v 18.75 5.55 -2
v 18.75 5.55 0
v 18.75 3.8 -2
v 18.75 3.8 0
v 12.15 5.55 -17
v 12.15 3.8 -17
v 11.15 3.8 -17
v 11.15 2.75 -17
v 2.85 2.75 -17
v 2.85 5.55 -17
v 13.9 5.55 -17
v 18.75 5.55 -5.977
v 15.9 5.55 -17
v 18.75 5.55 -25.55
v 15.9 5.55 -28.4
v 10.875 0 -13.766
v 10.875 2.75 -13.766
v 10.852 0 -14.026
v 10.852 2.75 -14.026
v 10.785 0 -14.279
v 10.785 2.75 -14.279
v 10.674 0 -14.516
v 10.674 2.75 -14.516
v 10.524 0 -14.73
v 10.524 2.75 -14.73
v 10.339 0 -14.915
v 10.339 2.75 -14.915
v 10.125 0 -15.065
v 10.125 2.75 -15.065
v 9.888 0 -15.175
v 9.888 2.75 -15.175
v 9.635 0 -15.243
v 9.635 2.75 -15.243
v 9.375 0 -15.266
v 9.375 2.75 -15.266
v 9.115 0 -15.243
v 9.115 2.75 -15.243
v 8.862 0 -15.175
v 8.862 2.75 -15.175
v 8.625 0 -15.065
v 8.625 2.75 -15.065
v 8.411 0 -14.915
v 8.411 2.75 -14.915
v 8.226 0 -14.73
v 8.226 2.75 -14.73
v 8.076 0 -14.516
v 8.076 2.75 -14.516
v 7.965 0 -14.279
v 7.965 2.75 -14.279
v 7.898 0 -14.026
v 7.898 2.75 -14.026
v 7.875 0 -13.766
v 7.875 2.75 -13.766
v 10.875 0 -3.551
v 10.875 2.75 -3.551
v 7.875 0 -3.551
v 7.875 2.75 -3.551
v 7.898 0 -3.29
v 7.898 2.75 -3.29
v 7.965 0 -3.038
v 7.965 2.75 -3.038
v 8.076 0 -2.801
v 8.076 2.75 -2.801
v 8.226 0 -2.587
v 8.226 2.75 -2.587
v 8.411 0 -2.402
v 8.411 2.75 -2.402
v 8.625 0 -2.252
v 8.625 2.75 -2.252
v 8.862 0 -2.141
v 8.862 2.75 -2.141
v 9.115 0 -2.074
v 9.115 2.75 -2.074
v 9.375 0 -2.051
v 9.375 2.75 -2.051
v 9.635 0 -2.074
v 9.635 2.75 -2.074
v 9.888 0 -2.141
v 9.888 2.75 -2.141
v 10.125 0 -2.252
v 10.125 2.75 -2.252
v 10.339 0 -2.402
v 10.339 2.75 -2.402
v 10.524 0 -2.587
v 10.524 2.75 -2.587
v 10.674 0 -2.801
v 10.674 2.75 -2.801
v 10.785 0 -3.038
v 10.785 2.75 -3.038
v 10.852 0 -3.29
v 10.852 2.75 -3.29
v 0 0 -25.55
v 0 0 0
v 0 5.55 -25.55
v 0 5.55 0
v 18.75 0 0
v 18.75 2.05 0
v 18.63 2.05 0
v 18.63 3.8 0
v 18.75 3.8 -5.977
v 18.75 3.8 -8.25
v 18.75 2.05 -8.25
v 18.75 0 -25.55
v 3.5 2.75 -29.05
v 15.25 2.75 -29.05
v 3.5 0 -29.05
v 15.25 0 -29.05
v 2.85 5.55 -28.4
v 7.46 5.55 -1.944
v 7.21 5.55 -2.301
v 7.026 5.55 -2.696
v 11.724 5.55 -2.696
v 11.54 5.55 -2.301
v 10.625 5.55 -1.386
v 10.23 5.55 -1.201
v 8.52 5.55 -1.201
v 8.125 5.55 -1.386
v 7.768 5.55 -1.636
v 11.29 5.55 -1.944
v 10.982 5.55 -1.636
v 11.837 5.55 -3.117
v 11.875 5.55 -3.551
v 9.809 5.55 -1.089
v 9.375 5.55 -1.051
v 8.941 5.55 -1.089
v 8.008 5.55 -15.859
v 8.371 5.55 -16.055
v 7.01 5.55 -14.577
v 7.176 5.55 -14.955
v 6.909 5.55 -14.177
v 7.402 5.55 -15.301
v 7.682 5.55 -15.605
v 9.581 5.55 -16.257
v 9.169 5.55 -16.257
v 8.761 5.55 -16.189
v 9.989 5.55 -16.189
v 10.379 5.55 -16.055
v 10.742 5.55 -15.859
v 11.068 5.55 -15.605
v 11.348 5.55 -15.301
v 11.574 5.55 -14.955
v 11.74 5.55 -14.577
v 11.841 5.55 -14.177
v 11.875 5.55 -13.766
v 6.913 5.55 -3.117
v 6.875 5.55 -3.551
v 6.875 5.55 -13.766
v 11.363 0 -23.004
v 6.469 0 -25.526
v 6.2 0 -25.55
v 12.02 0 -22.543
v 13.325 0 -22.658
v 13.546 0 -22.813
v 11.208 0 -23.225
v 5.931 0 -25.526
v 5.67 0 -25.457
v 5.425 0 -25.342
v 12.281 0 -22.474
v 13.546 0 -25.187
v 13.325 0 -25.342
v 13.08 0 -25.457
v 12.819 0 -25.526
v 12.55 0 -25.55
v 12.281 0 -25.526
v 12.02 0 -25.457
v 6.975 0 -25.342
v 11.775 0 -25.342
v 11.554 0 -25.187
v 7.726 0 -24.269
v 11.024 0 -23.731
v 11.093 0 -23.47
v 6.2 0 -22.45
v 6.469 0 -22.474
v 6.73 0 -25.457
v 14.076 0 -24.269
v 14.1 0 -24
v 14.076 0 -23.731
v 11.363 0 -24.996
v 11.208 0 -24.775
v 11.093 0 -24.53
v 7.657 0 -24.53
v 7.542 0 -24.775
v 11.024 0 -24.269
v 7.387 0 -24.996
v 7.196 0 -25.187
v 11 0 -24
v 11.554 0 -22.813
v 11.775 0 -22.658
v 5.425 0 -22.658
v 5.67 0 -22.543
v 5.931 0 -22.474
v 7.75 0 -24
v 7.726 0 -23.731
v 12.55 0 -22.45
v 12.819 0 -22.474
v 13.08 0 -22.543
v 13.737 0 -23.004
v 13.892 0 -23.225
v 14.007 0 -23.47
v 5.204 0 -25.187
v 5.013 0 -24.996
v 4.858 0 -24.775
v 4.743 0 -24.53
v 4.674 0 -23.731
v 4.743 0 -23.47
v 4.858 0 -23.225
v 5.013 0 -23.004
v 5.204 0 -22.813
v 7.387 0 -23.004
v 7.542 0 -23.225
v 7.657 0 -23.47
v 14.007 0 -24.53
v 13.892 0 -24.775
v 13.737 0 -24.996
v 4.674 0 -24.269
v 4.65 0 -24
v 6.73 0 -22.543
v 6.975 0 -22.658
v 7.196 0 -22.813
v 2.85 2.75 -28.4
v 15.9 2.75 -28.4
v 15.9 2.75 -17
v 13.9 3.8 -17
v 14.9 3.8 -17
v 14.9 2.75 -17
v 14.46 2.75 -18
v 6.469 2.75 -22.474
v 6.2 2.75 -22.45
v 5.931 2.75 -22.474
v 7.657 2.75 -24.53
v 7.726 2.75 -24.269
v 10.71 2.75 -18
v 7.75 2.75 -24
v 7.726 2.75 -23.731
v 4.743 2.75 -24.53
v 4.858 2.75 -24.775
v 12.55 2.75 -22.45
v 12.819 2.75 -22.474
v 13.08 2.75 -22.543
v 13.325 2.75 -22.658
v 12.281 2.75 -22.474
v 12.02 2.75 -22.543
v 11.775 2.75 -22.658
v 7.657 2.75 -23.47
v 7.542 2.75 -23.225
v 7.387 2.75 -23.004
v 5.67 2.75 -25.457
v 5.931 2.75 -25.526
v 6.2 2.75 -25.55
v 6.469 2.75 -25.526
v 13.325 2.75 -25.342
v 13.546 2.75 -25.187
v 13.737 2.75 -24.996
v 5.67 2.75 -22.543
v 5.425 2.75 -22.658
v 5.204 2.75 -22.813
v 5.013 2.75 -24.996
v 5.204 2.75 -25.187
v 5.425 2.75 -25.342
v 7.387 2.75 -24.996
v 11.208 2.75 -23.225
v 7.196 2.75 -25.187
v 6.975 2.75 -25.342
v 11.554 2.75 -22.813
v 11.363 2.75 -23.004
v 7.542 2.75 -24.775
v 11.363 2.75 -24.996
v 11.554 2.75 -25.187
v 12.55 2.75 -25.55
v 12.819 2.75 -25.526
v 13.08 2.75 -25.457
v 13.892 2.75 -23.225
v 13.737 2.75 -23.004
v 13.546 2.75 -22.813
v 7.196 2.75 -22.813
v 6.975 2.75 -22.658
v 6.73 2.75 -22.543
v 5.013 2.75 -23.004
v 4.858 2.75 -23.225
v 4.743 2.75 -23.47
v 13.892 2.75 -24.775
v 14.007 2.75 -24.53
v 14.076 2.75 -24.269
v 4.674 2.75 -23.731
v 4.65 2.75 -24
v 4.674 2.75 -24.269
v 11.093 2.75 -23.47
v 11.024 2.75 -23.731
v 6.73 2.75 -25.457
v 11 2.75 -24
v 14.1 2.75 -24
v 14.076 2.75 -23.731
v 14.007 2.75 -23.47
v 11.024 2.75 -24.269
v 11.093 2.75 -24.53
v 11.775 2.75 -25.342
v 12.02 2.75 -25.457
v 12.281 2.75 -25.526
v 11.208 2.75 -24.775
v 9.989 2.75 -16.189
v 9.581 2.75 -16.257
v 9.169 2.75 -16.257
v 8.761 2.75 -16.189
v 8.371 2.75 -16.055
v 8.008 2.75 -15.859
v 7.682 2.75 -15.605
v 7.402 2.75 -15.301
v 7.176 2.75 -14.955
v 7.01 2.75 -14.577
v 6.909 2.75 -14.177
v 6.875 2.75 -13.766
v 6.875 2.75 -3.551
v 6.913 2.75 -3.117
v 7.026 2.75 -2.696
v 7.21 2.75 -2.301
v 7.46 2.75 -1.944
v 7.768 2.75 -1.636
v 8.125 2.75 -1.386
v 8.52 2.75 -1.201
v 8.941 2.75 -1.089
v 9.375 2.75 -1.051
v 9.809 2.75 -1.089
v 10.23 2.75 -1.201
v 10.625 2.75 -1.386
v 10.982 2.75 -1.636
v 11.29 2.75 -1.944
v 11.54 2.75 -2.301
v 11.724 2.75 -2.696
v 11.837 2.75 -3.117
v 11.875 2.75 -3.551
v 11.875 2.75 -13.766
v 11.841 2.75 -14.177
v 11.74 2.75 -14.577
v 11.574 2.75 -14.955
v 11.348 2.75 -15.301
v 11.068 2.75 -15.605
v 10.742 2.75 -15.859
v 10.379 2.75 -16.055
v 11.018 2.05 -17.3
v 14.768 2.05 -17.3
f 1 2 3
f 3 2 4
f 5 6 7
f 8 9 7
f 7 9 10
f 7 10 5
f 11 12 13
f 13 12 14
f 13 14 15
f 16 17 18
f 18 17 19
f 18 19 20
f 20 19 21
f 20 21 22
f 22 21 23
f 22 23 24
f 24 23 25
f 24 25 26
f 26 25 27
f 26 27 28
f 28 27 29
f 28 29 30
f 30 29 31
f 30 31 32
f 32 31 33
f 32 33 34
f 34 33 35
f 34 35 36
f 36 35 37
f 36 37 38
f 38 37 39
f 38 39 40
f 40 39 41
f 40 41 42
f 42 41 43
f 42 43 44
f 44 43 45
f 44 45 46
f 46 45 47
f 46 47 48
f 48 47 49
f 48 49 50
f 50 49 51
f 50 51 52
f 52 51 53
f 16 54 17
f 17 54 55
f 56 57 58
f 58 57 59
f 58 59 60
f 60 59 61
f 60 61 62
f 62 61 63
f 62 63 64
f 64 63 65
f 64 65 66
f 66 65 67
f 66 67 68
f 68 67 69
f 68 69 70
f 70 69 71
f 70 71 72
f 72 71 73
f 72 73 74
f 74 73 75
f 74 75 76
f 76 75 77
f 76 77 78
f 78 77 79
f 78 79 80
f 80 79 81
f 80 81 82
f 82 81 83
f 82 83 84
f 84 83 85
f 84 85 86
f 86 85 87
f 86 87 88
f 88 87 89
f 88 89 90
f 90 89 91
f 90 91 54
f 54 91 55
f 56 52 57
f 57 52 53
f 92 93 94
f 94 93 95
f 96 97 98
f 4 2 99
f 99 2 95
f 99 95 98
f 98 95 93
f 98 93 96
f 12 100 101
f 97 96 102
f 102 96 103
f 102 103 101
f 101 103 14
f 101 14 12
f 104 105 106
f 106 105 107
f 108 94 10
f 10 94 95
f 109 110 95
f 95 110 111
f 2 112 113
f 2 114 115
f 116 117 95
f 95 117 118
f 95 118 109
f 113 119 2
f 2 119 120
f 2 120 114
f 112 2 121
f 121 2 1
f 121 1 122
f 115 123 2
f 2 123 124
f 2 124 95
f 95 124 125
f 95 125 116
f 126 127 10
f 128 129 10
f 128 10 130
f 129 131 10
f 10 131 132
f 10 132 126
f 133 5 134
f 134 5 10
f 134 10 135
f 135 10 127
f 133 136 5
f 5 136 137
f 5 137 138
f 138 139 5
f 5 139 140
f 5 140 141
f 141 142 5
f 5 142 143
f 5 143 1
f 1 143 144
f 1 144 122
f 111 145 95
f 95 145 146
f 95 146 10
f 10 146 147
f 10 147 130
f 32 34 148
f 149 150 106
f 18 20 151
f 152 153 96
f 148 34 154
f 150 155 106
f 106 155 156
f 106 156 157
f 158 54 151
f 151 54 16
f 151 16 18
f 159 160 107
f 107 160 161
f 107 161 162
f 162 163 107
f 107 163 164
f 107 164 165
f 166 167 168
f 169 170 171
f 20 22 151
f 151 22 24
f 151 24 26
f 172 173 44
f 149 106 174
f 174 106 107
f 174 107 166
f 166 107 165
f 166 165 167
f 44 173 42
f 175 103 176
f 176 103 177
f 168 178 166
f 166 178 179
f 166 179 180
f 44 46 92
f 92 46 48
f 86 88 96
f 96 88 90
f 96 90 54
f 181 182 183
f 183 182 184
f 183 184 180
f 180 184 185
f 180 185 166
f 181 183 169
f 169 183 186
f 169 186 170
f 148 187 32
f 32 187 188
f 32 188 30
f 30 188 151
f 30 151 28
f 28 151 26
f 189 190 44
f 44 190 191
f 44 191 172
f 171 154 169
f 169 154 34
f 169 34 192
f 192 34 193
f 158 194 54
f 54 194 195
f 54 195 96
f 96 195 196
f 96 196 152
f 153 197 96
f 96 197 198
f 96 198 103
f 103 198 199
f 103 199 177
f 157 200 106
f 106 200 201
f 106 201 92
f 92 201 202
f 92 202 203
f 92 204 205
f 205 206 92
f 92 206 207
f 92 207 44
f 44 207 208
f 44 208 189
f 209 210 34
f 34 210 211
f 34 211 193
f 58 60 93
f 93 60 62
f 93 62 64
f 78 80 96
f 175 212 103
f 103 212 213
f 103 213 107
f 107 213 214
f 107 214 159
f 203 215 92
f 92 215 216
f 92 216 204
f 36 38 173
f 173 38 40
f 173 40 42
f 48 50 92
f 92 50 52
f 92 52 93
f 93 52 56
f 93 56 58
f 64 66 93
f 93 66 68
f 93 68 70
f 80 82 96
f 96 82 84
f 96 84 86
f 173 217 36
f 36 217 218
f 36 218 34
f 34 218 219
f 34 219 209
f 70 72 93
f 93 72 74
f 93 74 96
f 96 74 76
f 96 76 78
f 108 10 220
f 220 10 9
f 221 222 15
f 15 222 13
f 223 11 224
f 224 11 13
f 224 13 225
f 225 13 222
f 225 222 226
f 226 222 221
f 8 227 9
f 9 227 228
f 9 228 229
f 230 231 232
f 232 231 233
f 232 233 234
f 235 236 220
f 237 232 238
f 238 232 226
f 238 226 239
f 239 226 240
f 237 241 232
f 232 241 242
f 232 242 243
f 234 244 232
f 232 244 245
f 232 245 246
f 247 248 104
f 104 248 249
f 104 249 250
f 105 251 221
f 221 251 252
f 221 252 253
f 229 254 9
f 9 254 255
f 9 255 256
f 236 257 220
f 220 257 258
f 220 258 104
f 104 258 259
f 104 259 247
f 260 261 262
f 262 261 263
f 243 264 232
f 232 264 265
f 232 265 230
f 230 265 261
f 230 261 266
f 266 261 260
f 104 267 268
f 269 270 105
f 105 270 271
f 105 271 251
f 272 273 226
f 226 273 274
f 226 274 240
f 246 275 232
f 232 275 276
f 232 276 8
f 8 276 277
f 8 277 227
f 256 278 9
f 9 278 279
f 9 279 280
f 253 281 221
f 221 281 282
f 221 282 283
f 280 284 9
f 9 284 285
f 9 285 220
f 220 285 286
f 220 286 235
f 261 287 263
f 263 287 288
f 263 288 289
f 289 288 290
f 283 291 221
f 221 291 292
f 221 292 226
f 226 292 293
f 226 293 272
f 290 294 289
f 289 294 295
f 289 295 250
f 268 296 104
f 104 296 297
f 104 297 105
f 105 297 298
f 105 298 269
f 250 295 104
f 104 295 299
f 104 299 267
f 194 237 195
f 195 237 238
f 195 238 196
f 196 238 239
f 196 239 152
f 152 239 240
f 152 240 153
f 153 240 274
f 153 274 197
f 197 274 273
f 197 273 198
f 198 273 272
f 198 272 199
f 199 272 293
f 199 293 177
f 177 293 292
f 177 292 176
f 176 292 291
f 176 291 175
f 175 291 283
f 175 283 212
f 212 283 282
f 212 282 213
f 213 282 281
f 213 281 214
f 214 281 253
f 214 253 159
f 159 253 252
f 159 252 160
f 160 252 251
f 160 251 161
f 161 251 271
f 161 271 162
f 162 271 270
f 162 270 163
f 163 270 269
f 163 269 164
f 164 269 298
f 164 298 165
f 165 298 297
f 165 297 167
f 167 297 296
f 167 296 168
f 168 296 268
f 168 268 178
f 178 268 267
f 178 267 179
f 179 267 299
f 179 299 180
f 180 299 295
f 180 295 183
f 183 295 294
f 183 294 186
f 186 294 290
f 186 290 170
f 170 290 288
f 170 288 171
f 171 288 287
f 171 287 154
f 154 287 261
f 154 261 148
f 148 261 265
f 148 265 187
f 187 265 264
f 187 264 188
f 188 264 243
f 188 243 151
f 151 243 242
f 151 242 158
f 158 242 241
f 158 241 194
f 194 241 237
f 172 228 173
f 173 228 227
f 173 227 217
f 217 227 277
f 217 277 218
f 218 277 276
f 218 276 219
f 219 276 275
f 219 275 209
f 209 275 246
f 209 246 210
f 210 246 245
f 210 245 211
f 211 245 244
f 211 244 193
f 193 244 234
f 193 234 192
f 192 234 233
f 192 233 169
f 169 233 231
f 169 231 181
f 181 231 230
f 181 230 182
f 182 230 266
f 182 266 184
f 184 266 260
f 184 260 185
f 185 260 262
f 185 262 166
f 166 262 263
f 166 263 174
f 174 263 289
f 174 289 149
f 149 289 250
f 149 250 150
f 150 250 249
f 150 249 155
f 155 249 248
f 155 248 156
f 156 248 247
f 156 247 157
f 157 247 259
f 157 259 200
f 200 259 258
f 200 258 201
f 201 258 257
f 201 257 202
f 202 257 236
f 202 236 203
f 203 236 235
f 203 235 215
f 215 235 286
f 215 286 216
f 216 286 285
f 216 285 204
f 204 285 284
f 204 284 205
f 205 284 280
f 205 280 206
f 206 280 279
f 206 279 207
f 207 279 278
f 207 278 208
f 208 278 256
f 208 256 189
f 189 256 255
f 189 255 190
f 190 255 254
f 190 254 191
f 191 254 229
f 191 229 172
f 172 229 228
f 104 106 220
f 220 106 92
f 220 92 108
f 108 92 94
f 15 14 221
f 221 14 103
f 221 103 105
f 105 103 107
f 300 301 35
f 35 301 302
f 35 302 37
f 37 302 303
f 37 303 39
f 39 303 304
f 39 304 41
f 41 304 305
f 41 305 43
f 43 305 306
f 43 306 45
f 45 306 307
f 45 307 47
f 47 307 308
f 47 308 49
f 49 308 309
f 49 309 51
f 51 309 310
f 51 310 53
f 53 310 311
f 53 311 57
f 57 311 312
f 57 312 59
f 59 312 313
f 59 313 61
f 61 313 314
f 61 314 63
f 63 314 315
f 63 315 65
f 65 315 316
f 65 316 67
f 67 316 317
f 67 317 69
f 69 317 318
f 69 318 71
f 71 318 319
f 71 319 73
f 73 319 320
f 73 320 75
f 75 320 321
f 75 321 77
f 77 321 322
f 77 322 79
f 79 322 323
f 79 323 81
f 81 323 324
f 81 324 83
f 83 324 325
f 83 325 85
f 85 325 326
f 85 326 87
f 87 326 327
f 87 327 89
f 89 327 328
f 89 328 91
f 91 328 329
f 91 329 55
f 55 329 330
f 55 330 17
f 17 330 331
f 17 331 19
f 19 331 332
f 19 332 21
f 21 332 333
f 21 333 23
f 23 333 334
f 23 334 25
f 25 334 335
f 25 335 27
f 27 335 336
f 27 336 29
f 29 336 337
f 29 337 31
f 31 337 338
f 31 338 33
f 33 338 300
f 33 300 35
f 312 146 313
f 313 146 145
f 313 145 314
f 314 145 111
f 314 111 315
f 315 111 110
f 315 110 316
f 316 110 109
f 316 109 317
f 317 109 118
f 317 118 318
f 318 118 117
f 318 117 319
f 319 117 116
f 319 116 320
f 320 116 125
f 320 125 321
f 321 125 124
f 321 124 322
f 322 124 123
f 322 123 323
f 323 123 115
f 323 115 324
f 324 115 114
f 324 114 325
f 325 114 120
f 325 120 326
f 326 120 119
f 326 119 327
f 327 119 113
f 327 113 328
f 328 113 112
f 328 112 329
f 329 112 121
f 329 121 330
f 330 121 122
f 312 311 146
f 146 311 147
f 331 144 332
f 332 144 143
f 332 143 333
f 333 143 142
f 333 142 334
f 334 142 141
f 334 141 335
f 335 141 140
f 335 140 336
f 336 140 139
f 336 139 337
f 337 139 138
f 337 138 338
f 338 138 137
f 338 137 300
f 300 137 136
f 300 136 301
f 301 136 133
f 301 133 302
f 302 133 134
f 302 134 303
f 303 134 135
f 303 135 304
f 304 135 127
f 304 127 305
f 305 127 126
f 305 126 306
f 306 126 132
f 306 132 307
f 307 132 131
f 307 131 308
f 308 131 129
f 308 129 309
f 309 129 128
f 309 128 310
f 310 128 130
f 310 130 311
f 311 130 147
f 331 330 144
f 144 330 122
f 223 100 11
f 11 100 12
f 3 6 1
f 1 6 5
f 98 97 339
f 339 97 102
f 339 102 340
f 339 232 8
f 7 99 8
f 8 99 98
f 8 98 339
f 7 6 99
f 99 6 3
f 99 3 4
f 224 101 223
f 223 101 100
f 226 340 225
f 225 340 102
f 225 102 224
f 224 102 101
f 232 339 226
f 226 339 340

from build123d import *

# Parameters (mm, degrees)
SKETCH1_W                                  = 18.75
SKETCH1_H                                  = 29.05
BOSS_EXTRUDE1_DEPTH                        = 5.55
MICROSWITCHCUTSKETCH2_W                    = 13.05
MICROSWITCHCUTSKETCH2_H                    = 12.05
MICROSWITCHCUT_EXTRUDE1_DEPTH              = 2.8
MICROSWITCHMOUNTINGHOLESSKETCH3_R          = 1.55
MICROSWITCHMOUNTINGHOLESCUT_EXTRUDE2_DEPTH = 3.1
SLIDINGMOUNTHOLECUT_EXTRUDE3_DEPTH         = 36.018102461
CHAMFER1_SIZE                              = 3.5
SLIDINGMOUNTHOLEBORECUT_EXTRUDE4_DEPTH     = 2.8
THINCABLECUT_EXTRUDE5_DEPTH                = 1.75
THICKCABLECUT_EXTRUDE6_DEPTH               = 1.75
CHAMFER2_SIZE                              = 1


with BuildPart() as part:
    # Sketch1 → Boss-Extrude1 (new body)
    with BuildSketch(Plane(origin=(0, 0, 0), x_dir=(1, 0, 0), z_dir=(0, 1, 0))):
        with Locations((9.375, 14.525)):
            Rectangle(SKETCH1_W, SKETCH1_H)
    extrude(amount=BOSS_EXTRUDE1_DEPTH)

    # MicroSwitchCutSketch2 → MicroSwitchCut-Extrude1 (cut)
    with BuildSketch(Plane(origin=(0, 5.55, 0), x_dir=(1, 0, 0), z_dir=(0, 1, 0))):
        with Locations((9.375, 23.025)):
            Rectangle(MICROSWITCHCUTSKETCH2_W, MICROSWITCHCUTSKETCH2_H)
    extrude(amount=-MICROSWITCHCUT_EXTRUDE1_DEPTH, mode=Mode.SUBTRACT)

    # MicroSwitchMountingHolesSketch3 → MicroSwitchMountingHolesCut-Extrude2 (cut)
    with BuildSketch(Plane(origin=(0, 2.75, 0), x_dir=(1, 0, 0), z_dir=(0, 1, 0))):
        with Locations(Location((6.2, 24, 0), (0, 0, 270))):
            Circle(MICROSWITCHMOUNTINGHOLESSKETCH3_R)
        with Locations(Location((12.55, 24, 0), (0, 0, 270))):
            Circle(MICROSWITCHMOUNTINGHOLESSKETCH3_R)
    extrude(amount=-MICROSWITCHMOUNTINGHOLESCUT_EXTRUDE2_DEPTH, mode=Mode.SUBTRACT)

    # GantryMountSlotSketch4 → SlidingMountHoleCut-Extrude3 (cut, through all)
    with BuildSketch(Plane(origin=(0, 5.55, 0), x_dir=(1, 0, 0), z_dir=(0, 1, 0))):
        with BuildLine():
            Line((10.875, 13.765586377), (10.875, 3.550728623))
            ThreePointArc((10.875, 3.550728623), (9.375, 2.050728623), (7.875, 3.550728623))
            Line((7.875, 3.550728623), (7.875, 13.765586377))
            ThreePointArc((7.875, 13.765586377), (9.375, 15.265586377), (10.875, 13.765586377))
        make_face()
    extrude(amount=-SLIDINGMOUNTHOLECUT_EXTRUDE3_DEPTH, mode=Mode.SUBTRACT)

    # Chamfer1
    chamfer1_edges = [part.edges().sort_by_distance(p)[0] for p in [
        (18.75, 2.775, -29.05),
        (0, 2.775, -29.05),
    ]]
    chamfer(chamfer1_edges, length=CHAMFER1_SIZE)

    # Sketch2 → SlidingMountHoleBoreCut-Extrude4 (cut)
    with BuildSketch(Plane(origin=(0, 5.55, 0), x_dir=(1, 0, 0), z_dir=(0, 1, 0))):
        with BuildLine():
            Line((6.875, 3.550728623), (6.875, 13.765586377))
            ThreePointArc((6.875, 13.765586377), (9.375, 16.265586377), (11.875, 13.765586377))
            Line((11.875, 13.765586377), (11.875, 3.550728623))
            ThreePointArc((11.875, 3.550728623), (9.375, 1.050728623), (6.875, 3.550728623))
        make_face()
    extrude(amount=-SLIDINGMOUNTHOLEBORECUT_EXTRUDE4_DEPTH, mode=Mode.SUBTRACT)

    # Sketch3 → ThinCableCut-Extrude5 (cut)
    with BuildSketch(Plane(origin=(0, 5.55, 0), x_dir=(1, 0, 0), z_dir=(0, 1, 0))):
        Polygon((12.15, 17), (18.75, 2), (18.75, 5.977272727), (13.9, 17), align=None)
    extrude(amount=-THINCABLECUT_EXTRUDE5_DEPTH, mode=Mode.SUBTRACT)

    # Sketch4 → ThickCableCut-Extrude6 (cut)
    with BuildSketch(Plane(origin=(0, 3.8, 0), x_dir=(1, 0, 0), z_dir=(0, 1, 0))):
        Polygon((11.15, 17), (18.75, -0.272727273), (18.75, 8.25), (14.9, 17), align=None)
    extrude(amount=-THICKCABLECUT_EXTRUDE6_DEPTH, mode=Mode.SUBTRACT)

    # Chamfer2
    # the kernel refuses this chamfer: 1 mm, written as the material it takes off along each edge
    with BuildSketch(Plane(origin=(17.471682988, 2.75, -17), x_dir=(0, 0.02749587661058651, -0.9996219169112968), z_dir=(-1, 0, 0))) as chamfer2_piece_1_section:
        Polygon((CHAMFER2_SIZE * 0.999621916911, CHAMFER2_SIZE * 0.0274958766106), (-CHAMFER2_SIZE * 0.0274958766106, CHAMFER2_SIZE * 0.999621916911), (0, 0), align=None)
    chamfer2_piece_1 = extrude(amount=8.893365976, mode=Mode.PRIVATE)
    chamfer2_piece_1 = split(chamfer2_piece_1, bisect_by=Plane(origin=(12.868179487, 2.05, -17.356410256), z_dir=(0, 1, 0)), keep=Keep.TOP, mode=Mode.PRIVATE)
    chamfer2_piece_1 = split(chamfer2_piece_1, bisect_by=Plane(origin=(11.297301471, 2.462820513, -16.665223929), z_dir=(0.9153150324227658, 0, -0.40273861426601665)), keep=Keep.TOP, mode=Mode.PRIVATE)
    chamfer2_piece_1 = split(chamfer2_piece_1, bisect_by=Plane(origin=(14.439057503, 2.462820513, -18.047596583), z_dir=(-0.9153150324227658, 0, 0.40273861426601687)), keep=Keep.TOP, mode=Mode.PRIVATE)
    add(chamfer2_piece_1, mode=Mode.SUBTRACT)


solid = part.part
